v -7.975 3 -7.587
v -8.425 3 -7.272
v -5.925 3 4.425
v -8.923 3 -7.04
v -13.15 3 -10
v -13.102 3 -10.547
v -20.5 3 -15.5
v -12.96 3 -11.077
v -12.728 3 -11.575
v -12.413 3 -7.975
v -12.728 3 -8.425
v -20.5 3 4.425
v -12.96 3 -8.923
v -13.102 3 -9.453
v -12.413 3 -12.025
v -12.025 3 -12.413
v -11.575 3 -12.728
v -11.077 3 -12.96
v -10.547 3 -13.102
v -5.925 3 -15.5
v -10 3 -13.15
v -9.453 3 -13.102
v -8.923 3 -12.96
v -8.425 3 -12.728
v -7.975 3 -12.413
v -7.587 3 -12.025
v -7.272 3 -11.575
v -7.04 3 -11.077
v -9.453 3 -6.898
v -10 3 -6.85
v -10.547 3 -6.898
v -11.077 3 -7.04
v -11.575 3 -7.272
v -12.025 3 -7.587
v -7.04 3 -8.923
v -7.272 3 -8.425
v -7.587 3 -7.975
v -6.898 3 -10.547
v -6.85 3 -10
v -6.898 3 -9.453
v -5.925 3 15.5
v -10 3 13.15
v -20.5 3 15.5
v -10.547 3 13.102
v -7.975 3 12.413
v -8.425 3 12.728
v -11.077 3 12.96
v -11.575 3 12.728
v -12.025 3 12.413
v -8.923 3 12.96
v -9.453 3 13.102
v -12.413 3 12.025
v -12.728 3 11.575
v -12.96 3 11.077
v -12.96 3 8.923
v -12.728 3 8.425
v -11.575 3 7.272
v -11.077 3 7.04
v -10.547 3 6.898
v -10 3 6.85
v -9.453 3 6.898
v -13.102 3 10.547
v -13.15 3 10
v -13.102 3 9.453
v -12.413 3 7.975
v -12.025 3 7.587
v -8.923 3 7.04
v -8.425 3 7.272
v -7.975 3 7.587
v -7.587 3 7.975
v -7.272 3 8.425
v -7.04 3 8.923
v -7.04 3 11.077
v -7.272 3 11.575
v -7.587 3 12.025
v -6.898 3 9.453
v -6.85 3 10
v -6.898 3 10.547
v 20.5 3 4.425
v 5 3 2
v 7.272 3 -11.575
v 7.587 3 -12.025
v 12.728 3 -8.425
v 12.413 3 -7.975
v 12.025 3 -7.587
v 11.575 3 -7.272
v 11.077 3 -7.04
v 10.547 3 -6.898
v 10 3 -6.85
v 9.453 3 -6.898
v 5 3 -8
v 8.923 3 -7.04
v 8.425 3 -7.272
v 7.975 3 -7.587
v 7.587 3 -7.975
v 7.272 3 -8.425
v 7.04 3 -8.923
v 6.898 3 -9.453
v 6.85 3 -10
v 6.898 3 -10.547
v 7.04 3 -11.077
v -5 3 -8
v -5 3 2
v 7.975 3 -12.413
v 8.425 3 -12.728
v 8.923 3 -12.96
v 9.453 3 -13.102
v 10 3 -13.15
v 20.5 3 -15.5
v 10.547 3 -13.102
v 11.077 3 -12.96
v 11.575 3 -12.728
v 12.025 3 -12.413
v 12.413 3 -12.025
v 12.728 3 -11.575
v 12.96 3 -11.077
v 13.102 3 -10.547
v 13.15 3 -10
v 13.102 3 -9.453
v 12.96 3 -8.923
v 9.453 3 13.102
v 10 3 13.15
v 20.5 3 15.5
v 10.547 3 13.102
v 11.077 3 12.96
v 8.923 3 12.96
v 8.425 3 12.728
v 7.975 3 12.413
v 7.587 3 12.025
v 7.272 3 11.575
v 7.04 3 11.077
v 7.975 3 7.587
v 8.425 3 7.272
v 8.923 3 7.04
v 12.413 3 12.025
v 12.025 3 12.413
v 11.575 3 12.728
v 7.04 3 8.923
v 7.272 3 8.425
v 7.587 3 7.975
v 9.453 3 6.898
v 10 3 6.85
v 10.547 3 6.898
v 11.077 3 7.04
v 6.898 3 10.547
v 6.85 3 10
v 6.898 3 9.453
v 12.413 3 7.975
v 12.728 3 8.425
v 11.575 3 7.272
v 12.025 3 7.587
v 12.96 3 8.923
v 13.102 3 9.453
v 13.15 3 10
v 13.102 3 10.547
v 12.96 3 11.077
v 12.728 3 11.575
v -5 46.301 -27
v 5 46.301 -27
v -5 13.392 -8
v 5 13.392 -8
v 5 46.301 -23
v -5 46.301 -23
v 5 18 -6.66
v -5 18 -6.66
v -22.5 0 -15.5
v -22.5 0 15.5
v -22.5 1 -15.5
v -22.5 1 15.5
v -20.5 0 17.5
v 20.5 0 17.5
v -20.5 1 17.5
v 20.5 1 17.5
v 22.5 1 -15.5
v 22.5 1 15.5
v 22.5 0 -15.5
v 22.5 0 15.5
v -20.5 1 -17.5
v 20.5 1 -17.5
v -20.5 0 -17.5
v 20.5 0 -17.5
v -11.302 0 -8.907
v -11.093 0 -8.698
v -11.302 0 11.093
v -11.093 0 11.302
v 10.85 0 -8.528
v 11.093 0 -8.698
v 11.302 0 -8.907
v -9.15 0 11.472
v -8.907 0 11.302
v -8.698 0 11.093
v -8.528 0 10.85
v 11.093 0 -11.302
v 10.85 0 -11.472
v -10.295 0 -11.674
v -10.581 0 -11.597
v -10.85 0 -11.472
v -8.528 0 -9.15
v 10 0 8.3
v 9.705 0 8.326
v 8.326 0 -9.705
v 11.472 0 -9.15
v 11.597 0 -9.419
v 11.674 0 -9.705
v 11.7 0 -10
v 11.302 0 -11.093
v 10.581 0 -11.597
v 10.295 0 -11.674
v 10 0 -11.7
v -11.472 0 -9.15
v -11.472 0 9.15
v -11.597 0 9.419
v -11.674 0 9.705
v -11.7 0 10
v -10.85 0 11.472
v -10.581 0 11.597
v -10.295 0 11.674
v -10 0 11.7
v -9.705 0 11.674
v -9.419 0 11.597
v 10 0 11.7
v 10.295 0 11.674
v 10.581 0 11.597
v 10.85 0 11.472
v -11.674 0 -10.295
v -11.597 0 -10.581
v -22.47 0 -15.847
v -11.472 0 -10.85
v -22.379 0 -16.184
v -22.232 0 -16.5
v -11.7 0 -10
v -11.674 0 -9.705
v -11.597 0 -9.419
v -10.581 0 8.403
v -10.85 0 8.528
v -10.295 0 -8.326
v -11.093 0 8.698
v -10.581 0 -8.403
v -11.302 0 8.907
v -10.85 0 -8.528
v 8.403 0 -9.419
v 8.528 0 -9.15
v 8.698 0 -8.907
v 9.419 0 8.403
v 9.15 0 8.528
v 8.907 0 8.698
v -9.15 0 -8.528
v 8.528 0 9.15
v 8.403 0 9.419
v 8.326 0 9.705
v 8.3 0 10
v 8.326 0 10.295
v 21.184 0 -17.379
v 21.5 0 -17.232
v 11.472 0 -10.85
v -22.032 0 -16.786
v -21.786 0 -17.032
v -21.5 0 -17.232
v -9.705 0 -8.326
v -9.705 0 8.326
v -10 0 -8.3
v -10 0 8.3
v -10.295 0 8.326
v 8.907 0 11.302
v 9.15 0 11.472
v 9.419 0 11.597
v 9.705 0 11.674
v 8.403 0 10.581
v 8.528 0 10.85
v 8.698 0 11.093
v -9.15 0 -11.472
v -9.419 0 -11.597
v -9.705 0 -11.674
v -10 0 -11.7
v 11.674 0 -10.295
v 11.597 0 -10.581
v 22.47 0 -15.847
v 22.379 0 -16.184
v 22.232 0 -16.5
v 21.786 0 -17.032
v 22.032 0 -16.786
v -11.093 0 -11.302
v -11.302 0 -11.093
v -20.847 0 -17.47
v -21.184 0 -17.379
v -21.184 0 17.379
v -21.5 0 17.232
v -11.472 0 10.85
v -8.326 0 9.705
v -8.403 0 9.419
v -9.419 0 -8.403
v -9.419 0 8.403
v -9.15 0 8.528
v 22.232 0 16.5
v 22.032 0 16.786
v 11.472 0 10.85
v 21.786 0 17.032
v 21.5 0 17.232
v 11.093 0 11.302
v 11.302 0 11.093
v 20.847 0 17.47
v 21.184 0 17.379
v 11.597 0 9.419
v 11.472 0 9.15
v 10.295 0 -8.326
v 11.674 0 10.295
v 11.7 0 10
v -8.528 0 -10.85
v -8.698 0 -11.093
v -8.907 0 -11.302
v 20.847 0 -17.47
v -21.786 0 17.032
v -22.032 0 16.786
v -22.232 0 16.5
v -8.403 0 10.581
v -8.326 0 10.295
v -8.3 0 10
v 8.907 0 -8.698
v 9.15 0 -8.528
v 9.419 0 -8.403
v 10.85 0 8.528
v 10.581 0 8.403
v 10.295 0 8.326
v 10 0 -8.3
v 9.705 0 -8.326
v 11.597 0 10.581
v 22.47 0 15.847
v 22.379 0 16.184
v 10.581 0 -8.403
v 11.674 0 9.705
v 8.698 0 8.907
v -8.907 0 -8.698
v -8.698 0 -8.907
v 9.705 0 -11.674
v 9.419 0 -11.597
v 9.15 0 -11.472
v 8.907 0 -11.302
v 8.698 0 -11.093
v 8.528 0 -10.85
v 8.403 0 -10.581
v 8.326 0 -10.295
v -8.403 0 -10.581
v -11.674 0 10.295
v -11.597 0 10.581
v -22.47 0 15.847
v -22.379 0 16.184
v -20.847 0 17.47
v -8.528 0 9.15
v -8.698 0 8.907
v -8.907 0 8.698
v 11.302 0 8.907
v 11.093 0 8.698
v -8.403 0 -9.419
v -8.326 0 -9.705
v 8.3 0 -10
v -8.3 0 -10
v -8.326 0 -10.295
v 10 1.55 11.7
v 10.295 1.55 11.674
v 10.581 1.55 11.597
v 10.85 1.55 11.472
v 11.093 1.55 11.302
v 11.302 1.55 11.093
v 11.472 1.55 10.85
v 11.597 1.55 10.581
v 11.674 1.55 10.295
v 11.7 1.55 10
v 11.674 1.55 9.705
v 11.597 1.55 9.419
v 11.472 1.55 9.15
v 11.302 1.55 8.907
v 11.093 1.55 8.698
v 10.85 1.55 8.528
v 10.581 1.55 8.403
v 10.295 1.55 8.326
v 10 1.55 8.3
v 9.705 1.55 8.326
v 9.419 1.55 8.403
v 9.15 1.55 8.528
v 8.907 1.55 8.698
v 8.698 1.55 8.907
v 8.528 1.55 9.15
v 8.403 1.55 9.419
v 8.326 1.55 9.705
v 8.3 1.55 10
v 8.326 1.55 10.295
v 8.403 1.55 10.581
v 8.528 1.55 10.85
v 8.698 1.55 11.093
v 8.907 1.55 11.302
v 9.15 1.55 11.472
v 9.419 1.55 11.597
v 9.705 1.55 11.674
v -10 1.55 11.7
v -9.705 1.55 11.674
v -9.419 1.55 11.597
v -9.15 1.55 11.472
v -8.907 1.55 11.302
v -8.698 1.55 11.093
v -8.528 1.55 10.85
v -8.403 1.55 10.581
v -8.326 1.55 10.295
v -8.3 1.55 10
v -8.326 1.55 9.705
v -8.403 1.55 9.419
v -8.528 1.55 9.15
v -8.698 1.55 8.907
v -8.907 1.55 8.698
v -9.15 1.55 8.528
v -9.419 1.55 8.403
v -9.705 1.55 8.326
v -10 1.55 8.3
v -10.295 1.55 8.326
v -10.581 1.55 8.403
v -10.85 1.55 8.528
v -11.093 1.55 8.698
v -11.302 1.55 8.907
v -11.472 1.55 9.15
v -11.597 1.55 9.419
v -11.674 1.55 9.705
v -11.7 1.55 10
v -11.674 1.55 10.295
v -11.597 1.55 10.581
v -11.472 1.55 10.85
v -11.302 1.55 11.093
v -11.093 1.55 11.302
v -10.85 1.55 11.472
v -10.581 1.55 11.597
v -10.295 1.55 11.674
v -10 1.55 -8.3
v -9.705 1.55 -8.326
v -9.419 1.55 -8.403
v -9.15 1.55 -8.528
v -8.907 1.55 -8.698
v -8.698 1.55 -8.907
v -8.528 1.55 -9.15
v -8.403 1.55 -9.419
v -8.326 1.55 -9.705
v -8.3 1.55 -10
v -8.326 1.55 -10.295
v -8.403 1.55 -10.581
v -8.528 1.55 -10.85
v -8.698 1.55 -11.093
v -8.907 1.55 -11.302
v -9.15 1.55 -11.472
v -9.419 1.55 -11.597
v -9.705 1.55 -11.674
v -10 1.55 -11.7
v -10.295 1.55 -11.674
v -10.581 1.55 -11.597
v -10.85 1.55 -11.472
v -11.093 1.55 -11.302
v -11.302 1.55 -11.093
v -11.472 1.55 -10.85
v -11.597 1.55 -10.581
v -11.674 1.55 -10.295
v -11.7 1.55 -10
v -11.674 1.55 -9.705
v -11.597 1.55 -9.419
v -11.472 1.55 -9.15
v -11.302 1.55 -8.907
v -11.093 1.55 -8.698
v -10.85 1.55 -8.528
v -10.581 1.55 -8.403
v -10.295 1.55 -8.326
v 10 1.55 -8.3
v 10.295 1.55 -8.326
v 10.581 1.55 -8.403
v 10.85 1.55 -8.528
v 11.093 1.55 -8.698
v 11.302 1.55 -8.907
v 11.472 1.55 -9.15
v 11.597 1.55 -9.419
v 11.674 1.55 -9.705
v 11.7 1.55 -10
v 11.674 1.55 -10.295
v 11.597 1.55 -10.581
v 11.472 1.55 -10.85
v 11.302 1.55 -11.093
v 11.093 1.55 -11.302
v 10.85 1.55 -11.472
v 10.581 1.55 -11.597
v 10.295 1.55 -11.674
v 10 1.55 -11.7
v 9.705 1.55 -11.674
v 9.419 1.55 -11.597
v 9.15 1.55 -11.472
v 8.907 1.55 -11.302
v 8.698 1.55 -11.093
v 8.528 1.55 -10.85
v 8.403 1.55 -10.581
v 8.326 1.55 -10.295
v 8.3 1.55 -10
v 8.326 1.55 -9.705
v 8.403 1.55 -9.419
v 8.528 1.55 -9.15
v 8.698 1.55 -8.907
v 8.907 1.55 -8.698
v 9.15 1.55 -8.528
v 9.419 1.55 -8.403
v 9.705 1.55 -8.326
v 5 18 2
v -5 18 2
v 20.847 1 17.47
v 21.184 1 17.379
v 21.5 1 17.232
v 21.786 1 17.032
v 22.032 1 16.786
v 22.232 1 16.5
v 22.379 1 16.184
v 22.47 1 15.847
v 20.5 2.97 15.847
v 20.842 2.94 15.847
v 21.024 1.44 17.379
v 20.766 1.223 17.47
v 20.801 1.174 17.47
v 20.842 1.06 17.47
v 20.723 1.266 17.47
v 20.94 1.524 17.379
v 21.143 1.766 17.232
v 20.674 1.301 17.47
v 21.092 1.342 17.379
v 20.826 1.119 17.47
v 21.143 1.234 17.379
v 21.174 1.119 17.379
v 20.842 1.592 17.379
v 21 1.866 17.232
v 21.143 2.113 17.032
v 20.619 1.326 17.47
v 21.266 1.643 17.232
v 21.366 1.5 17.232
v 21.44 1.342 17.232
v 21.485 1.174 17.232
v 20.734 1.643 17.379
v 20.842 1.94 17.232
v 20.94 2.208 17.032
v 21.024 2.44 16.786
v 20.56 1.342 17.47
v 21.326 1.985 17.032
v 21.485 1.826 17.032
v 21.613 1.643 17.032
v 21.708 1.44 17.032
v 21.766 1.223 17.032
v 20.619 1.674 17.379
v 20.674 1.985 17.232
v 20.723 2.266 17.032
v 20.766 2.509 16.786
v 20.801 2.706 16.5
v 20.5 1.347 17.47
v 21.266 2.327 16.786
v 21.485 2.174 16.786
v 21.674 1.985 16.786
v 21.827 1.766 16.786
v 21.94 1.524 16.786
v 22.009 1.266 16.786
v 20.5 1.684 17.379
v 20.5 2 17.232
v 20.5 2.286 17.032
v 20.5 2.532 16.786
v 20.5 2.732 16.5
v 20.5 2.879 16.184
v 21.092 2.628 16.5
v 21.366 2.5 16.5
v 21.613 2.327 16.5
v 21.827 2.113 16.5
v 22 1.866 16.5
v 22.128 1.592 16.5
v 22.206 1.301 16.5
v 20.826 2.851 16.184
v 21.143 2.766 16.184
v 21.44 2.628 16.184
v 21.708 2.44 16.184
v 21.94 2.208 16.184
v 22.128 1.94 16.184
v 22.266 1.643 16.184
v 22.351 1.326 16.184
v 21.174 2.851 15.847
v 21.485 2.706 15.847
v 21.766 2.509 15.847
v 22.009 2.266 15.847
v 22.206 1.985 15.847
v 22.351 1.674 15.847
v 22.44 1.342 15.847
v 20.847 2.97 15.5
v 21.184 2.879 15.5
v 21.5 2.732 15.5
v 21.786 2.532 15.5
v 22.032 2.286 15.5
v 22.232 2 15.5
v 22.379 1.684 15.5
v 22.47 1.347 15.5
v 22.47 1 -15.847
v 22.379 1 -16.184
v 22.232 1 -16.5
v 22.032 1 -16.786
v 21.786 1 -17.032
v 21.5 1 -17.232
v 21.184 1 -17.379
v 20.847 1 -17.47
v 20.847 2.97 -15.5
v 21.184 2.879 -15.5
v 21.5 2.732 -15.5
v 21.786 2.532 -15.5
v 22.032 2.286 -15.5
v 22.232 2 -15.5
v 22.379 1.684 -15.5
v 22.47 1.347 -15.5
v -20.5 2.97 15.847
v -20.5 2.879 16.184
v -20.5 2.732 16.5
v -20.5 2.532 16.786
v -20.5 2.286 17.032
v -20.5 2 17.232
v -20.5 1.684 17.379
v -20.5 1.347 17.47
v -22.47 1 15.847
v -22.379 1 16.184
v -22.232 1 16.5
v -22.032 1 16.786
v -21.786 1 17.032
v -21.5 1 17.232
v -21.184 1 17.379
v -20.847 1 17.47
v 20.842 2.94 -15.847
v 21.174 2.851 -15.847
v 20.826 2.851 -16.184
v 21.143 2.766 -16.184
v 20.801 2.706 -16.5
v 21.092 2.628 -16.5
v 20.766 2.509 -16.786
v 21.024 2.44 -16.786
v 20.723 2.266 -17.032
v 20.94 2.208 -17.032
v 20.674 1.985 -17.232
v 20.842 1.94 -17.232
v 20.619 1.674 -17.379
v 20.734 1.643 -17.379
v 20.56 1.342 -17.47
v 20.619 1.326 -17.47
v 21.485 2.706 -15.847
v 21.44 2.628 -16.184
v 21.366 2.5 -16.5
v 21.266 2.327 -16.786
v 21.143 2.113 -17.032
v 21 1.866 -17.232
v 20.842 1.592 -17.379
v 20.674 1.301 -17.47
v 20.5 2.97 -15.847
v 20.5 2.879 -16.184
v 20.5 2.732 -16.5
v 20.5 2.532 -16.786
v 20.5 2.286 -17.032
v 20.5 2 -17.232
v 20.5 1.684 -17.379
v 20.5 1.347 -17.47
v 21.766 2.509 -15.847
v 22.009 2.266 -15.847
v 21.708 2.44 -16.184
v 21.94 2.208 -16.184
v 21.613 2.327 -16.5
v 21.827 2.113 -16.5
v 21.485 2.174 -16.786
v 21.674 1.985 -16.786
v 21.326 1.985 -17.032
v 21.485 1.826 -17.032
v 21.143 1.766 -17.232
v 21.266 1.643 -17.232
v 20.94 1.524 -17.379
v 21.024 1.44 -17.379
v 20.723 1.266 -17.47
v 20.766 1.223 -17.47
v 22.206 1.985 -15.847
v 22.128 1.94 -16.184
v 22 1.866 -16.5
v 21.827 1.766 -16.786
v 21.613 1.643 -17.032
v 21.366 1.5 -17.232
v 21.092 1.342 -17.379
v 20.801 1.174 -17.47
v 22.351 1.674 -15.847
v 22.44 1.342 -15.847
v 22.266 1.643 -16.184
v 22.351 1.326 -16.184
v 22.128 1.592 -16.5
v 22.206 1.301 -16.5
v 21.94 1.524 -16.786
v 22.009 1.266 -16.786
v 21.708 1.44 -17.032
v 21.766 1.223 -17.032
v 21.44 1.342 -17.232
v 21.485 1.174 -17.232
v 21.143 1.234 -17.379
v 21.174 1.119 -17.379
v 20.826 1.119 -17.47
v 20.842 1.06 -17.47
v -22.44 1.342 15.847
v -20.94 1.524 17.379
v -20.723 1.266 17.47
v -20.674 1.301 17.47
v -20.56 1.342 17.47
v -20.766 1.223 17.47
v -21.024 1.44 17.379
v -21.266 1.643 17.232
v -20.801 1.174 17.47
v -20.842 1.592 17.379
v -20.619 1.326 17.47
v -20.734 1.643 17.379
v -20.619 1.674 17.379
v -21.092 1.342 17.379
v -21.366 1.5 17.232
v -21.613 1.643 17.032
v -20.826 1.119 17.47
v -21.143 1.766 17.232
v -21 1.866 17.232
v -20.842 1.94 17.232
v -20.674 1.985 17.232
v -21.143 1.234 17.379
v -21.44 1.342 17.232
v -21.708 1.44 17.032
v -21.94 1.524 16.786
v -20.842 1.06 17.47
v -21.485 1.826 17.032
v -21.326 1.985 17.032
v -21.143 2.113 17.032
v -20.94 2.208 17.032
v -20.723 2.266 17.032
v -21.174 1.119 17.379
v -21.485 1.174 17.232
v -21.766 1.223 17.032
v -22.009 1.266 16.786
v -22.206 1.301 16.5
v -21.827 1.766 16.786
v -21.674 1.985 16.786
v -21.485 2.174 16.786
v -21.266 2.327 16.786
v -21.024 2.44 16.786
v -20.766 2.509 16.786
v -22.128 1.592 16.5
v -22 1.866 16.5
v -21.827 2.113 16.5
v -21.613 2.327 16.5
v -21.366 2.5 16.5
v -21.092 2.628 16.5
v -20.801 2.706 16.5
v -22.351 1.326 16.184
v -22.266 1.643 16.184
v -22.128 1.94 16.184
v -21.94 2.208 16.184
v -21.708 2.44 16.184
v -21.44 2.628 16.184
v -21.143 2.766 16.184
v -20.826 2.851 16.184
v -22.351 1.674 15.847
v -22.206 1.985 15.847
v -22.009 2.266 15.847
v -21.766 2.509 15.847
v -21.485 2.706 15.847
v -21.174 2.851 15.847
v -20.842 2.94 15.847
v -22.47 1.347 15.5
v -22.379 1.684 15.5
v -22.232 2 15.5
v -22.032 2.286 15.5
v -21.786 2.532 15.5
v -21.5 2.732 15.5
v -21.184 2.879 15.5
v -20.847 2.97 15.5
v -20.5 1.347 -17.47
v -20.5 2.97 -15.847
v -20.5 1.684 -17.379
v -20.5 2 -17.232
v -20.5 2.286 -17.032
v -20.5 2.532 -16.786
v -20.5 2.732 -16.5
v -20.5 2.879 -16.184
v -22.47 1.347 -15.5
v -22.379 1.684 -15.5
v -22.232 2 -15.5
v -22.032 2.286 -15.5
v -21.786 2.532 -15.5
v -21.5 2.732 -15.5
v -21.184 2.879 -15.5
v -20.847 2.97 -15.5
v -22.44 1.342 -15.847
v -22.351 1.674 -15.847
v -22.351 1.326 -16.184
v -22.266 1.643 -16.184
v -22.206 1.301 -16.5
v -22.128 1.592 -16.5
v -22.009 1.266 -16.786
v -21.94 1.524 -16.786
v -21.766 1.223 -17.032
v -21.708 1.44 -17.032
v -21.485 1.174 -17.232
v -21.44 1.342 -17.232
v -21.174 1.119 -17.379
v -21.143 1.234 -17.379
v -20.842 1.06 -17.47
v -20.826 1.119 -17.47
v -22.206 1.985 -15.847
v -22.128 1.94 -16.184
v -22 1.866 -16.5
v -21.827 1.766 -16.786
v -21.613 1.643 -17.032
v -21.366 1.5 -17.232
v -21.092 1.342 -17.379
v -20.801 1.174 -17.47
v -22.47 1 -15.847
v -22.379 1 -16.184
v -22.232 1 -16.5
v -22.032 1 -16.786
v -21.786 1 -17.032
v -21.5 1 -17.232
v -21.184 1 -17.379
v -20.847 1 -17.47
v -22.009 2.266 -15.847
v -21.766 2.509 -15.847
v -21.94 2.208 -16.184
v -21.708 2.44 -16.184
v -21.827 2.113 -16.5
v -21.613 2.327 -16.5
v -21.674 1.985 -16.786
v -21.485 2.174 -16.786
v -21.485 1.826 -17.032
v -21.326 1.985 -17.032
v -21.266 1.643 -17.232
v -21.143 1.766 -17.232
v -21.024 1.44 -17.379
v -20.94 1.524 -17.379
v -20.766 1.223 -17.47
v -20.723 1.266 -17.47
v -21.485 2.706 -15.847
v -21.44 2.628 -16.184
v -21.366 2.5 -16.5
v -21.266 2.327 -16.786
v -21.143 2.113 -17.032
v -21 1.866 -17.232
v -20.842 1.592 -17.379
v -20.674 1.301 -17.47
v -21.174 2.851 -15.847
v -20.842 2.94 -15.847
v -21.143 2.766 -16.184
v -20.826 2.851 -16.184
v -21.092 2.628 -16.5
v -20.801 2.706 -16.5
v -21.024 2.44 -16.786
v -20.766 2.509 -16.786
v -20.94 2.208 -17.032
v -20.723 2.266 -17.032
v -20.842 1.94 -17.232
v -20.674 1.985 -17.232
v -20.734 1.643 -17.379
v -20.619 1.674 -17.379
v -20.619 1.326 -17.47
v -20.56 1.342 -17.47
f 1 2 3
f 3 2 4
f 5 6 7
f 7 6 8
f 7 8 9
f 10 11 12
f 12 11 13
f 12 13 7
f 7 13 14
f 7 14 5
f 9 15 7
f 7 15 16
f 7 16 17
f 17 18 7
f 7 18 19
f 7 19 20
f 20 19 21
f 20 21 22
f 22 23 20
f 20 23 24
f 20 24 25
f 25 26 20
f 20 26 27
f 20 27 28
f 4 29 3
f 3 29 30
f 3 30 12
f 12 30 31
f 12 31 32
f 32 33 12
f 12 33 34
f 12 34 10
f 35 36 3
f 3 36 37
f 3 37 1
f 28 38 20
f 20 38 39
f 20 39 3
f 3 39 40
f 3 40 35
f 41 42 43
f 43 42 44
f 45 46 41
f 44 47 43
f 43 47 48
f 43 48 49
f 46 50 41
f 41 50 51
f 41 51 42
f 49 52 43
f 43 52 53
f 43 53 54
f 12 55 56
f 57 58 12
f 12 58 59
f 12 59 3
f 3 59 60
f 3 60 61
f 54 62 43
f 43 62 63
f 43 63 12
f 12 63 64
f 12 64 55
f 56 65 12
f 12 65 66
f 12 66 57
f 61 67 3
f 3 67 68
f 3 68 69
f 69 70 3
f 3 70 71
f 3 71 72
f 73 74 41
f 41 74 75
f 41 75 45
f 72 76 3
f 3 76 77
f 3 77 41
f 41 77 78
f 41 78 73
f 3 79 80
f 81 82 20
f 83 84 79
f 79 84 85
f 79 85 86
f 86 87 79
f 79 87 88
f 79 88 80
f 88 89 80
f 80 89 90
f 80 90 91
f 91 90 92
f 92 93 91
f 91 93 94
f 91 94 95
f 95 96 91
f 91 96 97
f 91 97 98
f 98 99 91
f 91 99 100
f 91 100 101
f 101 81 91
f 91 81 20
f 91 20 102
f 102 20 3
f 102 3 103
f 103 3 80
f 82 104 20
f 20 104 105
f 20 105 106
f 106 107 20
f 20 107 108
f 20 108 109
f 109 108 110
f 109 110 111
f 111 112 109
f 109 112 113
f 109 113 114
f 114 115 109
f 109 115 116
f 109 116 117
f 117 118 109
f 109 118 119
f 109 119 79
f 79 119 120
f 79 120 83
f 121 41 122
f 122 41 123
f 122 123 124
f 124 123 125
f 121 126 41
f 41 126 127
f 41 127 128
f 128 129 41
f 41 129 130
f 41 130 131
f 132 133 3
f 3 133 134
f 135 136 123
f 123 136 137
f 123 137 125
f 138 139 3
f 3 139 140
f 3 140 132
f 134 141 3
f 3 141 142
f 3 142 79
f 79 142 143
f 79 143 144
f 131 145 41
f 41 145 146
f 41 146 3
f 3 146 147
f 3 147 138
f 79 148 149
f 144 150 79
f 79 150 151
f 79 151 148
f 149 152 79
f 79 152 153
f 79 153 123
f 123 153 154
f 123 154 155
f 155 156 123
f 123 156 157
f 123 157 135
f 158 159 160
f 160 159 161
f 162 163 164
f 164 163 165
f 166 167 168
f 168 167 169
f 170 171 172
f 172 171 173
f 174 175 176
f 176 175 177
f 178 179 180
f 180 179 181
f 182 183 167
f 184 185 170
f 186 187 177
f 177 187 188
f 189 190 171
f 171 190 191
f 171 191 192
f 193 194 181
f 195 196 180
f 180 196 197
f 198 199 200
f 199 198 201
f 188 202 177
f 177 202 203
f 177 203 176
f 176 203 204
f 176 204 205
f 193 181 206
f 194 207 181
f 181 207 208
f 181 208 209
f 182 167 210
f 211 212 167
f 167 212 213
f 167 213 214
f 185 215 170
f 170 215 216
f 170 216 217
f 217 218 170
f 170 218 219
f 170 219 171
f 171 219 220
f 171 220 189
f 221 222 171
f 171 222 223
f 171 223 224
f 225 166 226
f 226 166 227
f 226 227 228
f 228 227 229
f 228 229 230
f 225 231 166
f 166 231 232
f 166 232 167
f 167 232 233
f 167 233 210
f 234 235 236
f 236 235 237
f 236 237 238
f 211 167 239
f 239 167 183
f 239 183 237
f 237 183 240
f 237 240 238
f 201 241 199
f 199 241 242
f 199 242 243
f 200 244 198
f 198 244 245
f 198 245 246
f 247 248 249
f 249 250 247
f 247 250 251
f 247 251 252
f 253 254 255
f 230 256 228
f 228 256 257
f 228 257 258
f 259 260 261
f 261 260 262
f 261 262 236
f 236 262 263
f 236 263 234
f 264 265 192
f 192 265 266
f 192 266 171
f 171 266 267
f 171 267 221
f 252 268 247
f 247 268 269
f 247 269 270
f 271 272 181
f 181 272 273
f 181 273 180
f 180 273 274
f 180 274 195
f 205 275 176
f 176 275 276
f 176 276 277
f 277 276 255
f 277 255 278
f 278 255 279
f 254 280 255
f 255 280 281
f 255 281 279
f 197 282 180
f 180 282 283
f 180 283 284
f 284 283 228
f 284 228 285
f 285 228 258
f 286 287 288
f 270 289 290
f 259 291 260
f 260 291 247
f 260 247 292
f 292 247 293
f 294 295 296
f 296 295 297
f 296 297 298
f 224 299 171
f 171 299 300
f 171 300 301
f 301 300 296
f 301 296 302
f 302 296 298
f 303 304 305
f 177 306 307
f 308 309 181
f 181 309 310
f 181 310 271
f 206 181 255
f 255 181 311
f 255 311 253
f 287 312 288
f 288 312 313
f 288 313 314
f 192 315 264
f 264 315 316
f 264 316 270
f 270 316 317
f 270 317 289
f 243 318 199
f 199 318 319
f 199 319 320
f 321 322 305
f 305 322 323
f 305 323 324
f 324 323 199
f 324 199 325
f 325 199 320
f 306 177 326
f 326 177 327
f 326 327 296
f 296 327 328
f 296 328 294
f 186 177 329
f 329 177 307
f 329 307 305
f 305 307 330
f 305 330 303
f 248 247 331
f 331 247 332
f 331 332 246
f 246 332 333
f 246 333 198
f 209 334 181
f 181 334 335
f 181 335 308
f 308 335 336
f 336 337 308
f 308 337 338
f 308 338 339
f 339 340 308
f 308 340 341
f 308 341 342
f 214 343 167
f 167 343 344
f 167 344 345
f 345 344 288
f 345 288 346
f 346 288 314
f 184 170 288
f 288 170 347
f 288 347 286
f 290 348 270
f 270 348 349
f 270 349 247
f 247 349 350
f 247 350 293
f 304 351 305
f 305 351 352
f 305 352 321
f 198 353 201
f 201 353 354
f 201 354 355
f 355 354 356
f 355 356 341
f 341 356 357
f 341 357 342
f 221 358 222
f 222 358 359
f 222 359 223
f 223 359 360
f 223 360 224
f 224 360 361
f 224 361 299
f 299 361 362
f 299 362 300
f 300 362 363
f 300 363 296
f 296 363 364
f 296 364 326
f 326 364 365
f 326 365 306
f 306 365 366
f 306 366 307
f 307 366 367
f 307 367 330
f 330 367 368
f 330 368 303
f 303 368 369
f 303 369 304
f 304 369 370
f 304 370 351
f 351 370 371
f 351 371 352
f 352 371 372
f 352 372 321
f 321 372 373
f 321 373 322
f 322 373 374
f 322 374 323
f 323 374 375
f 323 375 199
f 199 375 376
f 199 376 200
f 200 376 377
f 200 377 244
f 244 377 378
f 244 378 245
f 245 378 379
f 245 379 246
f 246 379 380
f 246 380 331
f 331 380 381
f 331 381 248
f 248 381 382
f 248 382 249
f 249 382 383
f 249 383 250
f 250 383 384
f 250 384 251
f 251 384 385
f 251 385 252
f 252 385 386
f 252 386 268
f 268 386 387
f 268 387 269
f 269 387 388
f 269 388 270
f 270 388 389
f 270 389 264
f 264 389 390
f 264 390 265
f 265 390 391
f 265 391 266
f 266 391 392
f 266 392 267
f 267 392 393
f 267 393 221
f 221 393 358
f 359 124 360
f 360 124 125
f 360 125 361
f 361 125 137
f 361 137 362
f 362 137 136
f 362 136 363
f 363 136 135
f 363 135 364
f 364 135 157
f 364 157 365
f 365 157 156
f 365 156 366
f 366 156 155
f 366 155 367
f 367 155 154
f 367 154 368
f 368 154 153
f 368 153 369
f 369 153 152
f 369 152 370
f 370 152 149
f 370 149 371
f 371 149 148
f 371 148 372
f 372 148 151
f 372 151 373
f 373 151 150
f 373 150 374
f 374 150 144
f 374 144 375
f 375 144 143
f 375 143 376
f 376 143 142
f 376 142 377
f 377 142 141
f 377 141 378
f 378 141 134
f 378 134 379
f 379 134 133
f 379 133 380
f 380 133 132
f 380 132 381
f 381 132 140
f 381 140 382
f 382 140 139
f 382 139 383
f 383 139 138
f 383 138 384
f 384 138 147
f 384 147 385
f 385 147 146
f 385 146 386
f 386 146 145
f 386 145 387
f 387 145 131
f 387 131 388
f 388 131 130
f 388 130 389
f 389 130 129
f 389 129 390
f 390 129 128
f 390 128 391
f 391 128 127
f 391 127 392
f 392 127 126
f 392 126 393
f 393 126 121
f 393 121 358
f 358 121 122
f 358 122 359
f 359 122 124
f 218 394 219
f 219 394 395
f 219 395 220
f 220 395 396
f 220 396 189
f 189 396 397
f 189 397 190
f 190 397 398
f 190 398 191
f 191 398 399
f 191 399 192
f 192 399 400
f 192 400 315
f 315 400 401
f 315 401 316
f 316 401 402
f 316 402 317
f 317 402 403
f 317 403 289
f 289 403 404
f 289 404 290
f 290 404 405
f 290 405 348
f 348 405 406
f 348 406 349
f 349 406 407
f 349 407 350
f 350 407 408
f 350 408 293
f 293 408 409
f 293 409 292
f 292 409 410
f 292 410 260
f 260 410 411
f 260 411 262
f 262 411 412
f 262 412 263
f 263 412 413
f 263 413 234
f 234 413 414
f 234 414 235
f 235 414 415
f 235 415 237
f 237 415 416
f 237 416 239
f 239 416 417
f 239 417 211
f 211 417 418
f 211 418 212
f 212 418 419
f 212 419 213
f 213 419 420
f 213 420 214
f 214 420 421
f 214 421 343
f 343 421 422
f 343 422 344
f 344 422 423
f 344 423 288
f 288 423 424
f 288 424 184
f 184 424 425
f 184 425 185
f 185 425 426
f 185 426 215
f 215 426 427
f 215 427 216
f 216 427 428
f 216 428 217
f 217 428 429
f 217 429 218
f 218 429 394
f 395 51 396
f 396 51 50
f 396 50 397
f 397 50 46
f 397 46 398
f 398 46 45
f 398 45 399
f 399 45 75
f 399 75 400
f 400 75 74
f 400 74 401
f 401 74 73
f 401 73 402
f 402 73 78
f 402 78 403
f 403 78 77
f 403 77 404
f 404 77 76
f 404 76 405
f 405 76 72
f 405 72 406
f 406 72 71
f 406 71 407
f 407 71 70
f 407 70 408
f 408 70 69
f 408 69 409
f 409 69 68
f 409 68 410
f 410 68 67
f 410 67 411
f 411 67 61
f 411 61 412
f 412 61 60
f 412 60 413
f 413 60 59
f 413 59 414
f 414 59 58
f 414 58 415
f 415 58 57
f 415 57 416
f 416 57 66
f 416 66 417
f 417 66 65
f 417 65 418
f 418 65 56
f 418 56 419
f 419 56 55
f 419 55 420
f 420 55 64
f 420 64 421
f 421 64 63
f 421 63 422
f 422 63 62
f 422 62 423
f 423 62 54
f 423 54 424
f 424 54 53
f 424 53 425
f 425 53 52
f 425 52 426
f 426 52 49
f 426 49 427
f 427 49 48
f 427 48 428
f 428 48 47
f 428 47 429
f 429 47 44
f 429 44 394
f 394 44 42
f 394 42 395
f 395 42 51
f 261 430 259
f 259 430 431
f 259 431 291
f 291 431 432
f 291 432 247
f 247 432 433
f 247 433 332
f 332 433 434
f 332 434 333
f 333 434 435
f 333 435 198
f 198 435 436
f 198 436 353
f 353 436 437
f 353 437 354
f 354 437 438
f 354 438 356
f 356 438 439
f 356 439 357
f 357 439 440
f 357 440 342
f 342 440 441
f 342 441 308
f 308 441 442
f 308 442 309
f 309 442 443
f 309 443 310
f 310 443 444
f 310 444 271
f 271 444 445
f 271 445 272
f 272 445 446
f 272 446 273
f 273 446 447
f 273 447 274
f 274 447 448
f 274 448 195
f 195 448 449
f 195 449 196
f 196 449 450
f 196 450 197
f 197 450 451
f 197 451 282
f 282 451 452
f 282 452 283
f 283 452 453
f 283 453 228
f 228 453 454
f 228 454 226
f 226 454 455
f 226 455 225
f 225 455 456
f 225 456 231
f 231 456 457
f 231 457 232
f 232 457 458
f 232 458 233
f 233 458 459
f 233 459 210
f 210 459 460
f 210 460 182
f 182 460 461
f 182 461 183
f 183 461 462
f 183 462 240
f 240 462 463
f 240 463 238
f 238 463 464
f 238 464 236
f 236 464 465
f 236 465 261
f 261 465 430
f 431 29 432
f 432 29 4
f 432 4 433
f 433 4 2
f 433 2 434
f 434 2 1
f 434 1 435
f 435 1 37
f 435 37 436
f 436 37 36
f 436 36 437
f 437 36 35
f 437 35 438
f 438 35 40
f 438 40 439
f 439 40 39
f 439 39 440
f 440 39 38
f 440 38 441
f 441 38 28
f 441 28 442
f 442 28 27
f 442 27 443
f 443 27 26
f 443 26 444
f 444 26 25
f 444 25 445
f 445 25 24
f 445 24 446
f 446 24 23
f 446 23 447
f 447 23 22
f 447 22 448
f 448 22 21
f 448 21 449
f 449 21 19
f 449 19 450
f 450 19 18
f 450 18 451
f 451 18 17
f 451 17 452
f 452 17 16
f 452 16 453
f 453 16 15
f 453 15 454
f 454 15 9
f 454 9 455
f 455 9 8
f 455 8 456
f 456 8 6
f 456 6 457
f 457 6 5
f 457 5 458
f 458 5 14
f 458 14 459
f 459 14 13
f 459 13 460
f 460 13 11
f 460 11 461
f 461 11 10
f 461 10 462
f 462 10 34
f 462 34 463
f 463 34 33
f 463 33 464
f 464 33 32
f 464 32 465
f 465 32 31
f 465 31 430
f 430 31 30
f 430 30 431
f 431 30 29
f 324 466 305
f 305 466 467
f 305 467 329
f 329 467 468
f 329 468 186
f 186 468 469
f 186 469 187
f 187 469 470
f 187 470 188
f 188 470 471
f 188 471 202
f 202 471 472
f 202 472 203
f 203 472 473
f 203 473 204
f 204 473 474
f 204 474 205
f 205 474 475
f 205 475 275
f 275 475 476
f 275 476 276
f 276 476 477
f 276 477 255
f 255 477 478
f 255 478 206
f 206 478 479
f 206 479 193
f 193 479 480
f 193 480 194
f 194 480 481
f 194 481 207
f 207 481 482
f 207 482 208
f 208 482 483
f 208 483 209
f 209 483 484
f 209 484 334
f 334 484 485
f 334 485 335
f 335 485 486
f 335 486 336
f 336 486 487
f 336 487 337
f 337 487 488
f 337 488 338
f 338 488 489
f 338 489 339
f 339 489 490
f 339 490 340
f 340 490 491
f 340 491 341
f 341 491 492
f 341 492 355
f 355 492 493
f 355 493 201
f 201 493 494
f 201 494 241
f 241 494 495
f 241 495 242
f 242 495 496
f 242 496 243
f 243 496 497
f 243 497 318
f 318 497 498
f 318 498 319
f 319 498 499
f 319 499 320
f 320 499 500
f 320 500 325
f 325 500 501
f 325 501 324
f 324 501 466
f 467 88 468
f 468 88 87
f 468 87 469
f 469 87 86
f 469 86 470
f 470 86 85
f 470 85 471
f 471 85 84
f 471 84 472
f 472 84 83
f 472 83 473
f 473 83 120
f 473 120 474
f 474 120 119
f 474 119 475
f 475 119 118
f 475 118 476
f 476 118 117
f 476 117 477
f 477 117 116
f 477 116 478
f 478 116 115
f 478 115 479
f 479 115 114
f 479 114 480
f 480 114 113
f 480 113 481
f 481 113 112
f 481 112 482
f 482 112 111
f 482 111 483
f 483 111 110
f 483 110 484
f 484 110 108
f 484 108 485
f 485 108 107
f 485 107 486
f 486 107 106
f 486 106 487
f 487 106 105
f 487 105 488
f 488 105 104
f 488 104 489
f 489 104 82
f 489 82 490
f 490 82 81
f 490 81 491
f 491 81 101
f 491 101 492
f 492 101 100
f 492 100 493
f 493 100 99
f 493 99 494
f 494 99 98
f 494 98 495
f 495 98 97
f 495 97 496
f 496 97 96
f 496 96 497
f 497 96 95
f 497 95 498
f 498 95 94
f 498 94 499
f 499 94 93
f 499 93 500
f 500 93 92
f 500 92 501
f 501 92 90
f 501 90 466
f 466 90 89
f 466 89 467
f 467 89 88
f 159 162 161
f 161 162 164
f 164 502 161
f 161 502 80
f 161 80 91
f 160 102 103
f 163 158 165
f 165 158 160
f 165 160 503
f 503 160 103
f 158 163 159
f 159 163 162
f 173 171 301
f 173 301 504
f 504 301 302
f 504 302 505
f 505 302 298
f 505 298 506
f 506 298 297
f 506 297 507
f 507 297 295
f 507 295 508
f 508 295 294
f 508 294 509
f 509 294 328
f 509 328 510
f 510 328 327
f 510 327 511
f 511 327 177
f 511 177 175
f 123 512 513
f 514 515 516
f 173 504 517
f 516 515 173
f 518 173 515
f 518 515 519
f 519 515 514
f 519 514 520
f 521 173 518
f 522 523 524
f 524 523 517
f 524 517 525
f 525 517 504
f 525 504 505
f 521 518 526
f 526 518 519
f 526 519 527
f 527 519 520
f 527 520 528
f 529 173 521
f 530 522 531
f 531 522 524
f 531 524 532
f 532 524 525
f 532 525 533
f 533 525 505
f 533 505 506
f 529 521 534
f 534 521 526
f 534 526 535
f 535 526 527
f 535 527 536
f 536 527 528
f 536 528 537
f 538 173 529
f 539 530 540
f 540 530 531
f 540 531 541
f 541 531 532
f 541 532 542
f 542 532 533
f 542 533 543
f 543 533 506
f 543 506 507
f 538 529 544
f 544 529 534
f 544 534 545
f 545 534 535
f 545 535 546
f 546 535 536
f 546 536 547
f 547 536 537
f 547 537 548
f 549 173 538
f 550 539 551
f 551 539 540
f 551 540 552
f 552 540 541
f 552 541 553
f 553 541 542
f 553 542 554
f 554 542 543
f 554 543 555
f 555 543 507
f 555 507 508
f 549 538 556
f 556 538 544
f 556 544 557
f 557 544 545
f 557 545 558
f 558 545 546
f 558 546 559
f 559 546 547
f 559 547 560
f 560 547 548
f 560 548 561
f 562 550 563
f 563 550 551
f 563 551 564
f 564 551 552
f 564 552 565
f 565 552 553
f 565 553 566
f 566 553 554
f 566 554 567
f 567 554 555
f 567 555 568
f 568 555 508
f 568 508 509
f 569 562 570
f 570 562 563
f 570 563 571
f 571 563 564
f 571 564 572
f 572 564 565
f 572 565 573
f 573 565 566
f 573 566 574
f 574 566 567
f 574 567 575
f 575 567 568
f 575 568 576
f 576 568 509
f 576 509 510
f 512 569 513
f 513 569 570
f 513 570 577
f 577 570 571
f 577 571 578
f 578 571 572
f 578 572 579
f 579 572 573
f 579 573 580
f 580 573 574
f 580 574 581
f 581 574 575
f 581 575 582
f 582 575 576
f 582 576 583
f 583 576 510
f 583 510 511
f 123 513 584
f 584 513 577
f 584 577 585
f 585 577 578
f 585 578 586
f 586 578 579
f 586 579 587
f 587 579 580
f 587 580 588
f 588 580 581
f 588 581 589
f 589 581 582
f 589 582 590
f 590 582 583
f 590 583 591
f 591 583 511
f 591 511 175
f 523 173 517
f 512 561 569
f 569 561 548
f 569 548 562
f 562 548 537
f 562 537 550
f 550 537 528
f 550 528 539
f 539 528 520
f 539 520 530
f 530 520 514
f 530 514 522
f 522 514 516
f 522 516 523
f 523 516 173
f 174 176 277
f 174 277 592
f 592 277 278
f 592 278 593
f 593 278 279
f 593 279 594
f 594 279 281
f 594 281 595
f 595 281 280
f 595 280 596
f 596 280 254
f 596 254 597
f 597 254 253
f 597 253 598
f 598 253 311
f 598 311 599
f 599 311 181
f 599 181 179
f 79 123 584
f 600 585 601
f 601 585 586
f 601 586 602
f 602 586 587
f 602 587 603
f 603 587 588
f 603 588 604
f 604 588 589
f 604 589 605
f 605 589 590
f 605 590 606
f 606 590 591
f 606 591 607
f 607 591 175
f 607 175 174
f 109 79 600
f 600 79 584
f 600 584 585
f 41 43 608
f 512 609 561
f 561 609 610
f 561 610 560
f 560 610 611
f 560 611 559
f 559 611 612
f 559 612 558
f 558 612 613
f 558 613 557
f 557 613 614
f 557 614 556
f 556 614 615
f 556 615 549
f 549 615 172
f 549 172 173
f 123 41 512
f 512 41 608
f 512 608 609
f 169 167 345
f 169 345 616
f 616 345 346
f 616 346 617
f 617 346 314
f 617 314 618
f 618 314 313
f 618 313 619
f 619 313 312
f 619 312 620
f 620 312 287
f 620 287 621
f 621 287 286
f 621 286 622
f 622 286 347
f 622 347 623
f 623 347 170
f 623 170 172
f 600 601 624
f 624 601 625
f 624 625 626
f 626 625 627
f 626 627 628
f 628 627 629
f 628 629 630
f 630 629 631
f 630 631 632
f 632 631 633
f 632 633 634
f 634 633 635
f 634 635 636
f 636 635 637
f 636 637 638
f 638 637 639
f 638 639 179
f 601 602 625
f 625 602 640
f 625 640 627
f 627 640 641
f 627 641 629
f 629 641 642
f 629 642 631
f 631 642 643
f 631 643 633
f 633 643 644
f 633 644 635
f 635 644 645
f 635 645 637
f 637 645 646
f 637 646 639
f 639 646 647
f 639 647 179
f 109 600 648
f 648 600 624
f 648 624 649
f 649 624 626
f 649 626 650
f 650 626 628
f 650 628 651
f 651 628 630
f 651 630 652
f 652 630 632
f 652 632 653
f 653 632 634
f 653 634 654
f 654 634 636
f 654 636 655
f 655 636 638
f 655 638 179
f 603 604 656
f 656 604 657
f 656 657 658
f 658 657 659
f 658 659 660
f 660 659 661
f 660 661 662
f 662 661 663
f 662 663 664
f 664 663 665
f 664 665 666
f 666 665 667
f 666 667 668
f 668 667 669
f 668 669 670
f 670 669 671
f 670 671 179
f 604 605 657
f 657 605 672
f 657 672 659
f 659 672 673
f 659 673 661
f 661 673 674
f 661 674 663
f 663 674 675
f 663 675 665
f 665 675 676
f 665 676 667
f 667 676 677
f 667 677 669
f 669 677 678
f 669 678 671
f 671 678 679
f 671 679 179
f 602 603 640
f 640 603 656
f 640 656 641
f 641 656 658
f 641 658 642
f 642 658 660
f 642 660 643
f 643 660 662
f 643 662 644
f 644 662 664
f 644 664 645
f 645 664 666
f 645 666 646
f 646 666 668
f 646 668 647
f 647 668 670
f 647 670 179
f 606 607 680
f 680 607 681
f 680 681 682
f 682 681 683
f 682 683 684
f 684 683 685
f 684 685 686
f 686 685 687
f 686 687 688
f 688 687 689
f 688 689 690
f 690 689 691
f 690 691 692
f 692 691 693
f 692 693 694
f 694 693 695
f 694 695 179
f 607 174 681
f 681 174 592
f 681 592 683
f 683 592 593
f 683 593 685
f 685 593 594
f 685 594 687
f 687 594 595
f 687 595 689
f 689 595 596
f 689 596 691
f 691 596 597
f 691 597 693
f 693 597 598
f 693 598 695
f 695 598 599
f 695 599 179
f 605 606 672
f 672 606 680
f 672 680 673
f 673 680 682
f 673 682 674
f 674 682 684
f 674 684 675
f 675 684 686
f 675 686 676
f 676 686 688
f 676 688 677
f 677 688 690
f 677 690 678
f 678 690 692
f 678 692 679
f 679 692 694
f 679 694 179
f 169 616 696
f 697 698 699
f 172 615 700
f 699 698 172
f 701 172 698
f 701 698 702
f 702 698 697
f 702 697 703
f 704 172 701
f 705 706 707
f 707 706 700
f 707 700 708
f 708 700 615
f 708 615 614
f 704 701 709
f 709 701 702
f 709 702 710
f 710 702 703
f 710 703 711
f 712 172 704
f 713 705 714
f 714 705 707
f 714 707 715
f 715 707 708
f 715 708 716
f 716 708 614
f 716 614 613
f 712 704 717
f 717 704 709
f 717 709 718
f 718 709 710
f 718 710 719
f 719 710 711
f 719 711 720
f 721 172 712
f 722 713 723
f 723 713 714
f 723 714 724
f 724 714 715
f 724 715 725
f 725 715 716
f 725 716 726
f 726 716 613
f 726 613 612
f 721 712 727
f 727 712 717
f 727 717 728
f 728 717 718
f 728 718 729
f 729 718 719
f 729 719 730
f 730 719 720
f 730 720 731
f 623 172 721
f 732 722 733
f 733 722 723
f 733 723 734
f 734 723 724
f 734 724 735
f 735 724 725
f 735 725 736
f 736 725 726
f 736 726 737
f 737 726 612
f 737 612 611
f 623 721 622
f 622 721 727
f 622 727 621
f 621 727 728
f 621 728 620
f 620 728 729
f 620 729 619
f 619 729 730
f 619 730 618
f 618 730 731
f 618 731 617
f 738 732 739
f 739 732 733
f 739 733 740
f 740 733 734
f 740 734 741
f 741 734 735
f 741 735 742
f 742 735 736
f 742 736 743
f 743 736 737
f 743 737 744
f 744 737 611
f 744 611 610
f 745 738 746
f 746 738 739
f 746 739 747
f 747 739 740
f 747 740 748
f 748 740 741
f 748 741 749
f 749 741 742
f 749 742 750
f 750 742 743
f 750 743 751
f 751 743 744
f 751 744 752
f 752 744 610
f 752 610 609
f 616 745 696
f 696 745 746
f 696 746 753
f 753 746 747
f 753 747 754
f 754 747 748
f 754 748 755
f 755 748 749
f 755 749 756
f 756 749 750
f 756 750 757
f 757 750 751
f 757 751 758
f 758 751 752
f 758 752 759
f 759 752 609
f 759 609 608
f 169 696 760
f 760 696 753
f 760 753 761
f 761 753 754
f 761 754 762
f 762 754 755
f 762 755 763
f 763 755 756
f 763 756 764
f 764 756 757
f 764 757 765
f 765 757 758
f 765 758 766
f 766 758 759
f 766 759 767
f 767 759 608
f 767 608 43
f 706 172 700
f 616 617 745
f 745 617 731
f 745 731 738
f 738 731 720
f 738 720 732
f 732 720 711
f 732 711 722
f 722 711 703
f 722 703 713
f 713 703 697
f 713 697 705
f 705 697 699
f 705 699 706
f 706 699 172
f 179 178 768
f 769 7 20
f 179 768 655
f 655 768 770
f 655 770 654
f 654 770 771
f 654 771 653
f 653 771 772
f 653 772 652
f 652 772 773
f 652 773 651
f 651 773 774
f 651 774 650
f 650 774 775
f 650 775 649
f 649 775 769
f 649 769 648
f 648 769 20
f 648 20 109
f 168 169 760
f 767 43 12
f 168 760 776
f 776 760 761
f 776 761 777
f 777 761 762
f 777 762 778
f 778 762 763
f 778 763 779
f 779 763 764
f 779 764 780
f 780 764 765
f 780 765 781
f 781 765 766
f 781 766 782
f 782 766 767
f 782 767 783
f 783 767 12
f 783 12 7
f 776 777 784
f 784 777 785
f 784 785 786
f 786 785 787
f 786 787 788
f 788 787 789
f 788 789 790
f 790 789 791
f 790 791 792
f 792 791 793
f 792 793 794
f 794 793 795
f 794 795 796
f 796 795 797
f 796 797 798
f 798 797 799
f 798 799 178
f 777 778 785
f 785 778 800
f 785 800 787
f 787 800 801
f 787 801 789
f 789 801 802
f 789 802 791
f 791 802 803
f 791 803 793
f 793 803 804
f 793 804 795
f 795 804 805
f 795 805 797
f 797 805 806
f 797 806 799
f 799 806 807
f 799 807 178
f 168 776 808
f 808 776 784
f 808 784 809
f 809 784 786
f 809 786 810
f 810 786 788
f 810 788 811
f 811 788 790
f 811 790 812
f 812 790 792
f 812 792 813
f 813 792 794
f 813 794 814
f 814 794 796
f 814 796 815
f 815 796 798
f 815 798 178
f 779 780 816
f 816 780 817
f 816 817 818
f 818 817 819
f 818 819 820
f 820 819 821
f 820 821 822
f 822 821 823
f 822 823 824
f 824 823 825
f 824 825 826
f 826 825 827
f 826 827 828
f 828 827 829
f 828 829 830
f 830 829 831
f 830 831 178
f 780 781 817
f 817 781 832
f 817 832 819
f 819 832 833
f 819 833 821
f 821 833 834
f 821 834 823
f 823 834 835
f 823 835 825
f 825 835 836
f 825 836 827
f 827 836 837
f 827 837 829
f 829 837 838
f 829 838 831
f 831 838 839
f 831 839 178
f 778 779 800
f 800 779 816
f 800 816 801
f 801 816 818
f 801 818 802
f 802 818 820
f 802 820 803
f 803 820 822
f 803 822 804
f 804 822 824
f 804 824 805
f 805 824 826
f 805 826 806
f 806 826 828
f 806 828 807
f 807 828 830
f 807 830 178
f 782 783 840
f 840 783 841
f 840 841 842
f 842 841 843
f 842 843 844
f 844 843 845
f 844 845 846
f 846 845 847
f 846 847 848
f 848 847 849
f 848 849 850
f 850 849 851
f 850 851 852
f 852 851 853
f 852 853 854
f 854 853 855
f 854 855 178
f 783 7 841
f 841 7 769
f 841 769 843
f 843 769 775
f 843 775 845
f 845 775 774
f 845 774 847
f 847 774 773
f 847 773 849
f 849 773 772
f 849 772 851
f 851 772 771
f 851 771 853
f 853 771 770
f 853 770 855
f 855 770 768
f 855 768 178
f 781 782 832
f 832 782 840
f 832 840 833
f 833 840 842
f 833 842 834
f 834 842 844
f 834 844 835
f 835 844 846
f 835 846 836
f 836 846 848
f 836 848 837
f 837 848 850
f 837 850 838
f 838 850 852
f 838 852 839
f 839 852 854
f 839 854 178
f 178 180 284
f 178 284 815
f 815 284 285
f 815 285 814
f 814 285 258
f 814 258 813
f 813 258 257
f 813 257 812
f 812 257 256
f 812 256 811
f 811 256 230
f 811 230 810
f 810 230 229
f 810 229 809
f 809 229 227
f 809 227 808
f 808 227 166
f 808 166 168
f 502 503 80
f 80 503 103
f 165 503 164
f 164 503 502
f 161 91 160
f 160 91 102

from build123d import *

# Parameters (mm, degrees)
SKETCH1_W                                      = 45
SKETCH1_H                                      = 35
BOSS_EXTRUDE1_DEPTH                            = 3
CSK_FOR_M3_FLAT_HEAD_MACHINE_SCREW2_AT_2_COUNT = 2
CSK_FOR_M3_FLAT_HEAD_MACHINE_SCREW2_AT_2_PITCH = 20
CSK_FOR_M3_FLAT_HEAD_MACHINE_SCREW2_AT_3_COUNT = 2
CSK_FOR_M3_FLAT_HEAD_MACHINE_SCREW2_AT_3_PITCH = 28.284271247
CSK_FOR_M3_FLAT_HEAD_MACHINE_SCREW2_AT_4_COUNT = 2
CSK_FOR_M3_FLAT_HEAD_MACHINE_SCREW2_AT_4_PITCH = 20
SKETCH7_W                                      = 10
SKETCH7_H                                      = 4
BOSS_EXTRUDE2_DEPTH                            = 50
FILLET1_R                                      = 2
SKETCH12_W                                     = 10
SKETCH12_H                                     = 10
BOSS_EXTRUDE3_DEPTH                            = 15


with BuildPart() as part:
    # Sketch1 → Boss-Extrude1 (new body)
    with BuildSketch(Plane(origin=(0, 0, 0), x_dir=(1, 0, 0), z_dir=(0, 1, 0))):
        Rectangle(SKETCH1_W, SKETCH1_H)
    extrude(amount=BOSS_EXTRUDE1_DEPTH)

    # Sketch5 → CSK for M3 Flat Head Machine Screw2 (revolve, cut)
    with BuildSketch(Plane(origin=(10, 3, -10), x_dir=(0, 0, 1), z_dir=(1, 0, 0))):
        Polygon((0, 0), (0, 3), (1.7, 3), (1.7, 1.45), (3.15, 0), align=None)
    csk_for_m3_flat_head_machine_screw2 = revolve(axis=Axis((10, 9.35, -10), (0, -1, 0)), mode=Mode.SUBTRACT)

    # CSK for M3 Flat Head Machine Screw2 at 2: CSK for M3 Flat Head Machine Screw2 ×2
    with Locations(*[(-i * CSK_FOR_M3_FLAT_HEAD_MACHINE_SCREW2_AT_2_PITCH, 0, 0) for i in range(1, CSK_FOR_M3_FLAT_HEAD_MACHINE_SCREW2_AT_2_COUNT)]):
        add(csk_for_m3_flat_head_machine_screw2, mode=Mode.SUBTRACT)

    # CSK for M3 Flat Head Machine Screw2 at 3: CSK for M3 Flat Head Machine Screw2 ×2
    with Locations(*[Vector(-0.707106781, 0, 0.707106781) * (i * CSK_FOR_M3_FLAT_HEAD_MACHINE_SCREW2_AT_3_PITCH) for i in range(1, CSK_FOR_M3_FLAT_HEAD_MACHINE_SCREW2_AT_3_COUNT)]):
        add(csk_for_m3_flat_head_machine_screw2, mode=Mode.SUBTRACT)

    # CSK for M3 Flat Head Machine Screw2 at 4: CSK for M3 Flat Head Machine Screw2 ×2
    with Locations(*[(0, 0, i * CSK_FOR_M3_FLAT_HEAD_MACHINE_SCREW2_AT_4_PITCH) for i in range(1, CSK_FOR_M3_FLAT_HEAD_MACHINE_SCREW2_AT_4_COUNT)]):
        add(csk_for_m3_flat_head_machine_screw2, mode=Mode.SUBTRACT)

    # Sketch7 → Boss-Extrude2 (add, along a direction that is not the sketch's normal)
    with BuildSketch(Plane(origin=(0, 3, 0), x_dir=(1, 0, 0), z_dir=(0, 1, 0))):
        Rectangle(SKETCH7_W, SKETCH7_H)
    extrude(amount=BOSS_EXTRUDE2_DEPTH, dir=(0, 0.866025404, -0.5))

    # Fillet1
    fillet1_edges = [part.edges().sort_by_distance(p)[0] for p in [
        (22.5, 3, 0),
        (0, 3, -17.5),
        (-22.5, 3, 0),
        (0, 3, 17.5),
        (-22.5, 1.5, -17.5),
        (22.5, 1.5, -17.5),
        (22.5, 1.5, 17.5),
        (-22.5, 1.5, 17.5),
    ]]
    fillet(fillet1_edges, radius=FILLET1_R)

    # Sketch12 → Boss-Extrude3 (add)
    with BuildSketch(Plane(origin=(0, 3, 0), x_dir=(1, 0, 0), z_dir=(0, 1, 0))):
        with Locations((0, 3)):
            Rectangle(SKETCH12_W, SKETCH12_H)
    extrude(amount=BOSS_EXTRUDE3_DEPTH)


solid = part.part
